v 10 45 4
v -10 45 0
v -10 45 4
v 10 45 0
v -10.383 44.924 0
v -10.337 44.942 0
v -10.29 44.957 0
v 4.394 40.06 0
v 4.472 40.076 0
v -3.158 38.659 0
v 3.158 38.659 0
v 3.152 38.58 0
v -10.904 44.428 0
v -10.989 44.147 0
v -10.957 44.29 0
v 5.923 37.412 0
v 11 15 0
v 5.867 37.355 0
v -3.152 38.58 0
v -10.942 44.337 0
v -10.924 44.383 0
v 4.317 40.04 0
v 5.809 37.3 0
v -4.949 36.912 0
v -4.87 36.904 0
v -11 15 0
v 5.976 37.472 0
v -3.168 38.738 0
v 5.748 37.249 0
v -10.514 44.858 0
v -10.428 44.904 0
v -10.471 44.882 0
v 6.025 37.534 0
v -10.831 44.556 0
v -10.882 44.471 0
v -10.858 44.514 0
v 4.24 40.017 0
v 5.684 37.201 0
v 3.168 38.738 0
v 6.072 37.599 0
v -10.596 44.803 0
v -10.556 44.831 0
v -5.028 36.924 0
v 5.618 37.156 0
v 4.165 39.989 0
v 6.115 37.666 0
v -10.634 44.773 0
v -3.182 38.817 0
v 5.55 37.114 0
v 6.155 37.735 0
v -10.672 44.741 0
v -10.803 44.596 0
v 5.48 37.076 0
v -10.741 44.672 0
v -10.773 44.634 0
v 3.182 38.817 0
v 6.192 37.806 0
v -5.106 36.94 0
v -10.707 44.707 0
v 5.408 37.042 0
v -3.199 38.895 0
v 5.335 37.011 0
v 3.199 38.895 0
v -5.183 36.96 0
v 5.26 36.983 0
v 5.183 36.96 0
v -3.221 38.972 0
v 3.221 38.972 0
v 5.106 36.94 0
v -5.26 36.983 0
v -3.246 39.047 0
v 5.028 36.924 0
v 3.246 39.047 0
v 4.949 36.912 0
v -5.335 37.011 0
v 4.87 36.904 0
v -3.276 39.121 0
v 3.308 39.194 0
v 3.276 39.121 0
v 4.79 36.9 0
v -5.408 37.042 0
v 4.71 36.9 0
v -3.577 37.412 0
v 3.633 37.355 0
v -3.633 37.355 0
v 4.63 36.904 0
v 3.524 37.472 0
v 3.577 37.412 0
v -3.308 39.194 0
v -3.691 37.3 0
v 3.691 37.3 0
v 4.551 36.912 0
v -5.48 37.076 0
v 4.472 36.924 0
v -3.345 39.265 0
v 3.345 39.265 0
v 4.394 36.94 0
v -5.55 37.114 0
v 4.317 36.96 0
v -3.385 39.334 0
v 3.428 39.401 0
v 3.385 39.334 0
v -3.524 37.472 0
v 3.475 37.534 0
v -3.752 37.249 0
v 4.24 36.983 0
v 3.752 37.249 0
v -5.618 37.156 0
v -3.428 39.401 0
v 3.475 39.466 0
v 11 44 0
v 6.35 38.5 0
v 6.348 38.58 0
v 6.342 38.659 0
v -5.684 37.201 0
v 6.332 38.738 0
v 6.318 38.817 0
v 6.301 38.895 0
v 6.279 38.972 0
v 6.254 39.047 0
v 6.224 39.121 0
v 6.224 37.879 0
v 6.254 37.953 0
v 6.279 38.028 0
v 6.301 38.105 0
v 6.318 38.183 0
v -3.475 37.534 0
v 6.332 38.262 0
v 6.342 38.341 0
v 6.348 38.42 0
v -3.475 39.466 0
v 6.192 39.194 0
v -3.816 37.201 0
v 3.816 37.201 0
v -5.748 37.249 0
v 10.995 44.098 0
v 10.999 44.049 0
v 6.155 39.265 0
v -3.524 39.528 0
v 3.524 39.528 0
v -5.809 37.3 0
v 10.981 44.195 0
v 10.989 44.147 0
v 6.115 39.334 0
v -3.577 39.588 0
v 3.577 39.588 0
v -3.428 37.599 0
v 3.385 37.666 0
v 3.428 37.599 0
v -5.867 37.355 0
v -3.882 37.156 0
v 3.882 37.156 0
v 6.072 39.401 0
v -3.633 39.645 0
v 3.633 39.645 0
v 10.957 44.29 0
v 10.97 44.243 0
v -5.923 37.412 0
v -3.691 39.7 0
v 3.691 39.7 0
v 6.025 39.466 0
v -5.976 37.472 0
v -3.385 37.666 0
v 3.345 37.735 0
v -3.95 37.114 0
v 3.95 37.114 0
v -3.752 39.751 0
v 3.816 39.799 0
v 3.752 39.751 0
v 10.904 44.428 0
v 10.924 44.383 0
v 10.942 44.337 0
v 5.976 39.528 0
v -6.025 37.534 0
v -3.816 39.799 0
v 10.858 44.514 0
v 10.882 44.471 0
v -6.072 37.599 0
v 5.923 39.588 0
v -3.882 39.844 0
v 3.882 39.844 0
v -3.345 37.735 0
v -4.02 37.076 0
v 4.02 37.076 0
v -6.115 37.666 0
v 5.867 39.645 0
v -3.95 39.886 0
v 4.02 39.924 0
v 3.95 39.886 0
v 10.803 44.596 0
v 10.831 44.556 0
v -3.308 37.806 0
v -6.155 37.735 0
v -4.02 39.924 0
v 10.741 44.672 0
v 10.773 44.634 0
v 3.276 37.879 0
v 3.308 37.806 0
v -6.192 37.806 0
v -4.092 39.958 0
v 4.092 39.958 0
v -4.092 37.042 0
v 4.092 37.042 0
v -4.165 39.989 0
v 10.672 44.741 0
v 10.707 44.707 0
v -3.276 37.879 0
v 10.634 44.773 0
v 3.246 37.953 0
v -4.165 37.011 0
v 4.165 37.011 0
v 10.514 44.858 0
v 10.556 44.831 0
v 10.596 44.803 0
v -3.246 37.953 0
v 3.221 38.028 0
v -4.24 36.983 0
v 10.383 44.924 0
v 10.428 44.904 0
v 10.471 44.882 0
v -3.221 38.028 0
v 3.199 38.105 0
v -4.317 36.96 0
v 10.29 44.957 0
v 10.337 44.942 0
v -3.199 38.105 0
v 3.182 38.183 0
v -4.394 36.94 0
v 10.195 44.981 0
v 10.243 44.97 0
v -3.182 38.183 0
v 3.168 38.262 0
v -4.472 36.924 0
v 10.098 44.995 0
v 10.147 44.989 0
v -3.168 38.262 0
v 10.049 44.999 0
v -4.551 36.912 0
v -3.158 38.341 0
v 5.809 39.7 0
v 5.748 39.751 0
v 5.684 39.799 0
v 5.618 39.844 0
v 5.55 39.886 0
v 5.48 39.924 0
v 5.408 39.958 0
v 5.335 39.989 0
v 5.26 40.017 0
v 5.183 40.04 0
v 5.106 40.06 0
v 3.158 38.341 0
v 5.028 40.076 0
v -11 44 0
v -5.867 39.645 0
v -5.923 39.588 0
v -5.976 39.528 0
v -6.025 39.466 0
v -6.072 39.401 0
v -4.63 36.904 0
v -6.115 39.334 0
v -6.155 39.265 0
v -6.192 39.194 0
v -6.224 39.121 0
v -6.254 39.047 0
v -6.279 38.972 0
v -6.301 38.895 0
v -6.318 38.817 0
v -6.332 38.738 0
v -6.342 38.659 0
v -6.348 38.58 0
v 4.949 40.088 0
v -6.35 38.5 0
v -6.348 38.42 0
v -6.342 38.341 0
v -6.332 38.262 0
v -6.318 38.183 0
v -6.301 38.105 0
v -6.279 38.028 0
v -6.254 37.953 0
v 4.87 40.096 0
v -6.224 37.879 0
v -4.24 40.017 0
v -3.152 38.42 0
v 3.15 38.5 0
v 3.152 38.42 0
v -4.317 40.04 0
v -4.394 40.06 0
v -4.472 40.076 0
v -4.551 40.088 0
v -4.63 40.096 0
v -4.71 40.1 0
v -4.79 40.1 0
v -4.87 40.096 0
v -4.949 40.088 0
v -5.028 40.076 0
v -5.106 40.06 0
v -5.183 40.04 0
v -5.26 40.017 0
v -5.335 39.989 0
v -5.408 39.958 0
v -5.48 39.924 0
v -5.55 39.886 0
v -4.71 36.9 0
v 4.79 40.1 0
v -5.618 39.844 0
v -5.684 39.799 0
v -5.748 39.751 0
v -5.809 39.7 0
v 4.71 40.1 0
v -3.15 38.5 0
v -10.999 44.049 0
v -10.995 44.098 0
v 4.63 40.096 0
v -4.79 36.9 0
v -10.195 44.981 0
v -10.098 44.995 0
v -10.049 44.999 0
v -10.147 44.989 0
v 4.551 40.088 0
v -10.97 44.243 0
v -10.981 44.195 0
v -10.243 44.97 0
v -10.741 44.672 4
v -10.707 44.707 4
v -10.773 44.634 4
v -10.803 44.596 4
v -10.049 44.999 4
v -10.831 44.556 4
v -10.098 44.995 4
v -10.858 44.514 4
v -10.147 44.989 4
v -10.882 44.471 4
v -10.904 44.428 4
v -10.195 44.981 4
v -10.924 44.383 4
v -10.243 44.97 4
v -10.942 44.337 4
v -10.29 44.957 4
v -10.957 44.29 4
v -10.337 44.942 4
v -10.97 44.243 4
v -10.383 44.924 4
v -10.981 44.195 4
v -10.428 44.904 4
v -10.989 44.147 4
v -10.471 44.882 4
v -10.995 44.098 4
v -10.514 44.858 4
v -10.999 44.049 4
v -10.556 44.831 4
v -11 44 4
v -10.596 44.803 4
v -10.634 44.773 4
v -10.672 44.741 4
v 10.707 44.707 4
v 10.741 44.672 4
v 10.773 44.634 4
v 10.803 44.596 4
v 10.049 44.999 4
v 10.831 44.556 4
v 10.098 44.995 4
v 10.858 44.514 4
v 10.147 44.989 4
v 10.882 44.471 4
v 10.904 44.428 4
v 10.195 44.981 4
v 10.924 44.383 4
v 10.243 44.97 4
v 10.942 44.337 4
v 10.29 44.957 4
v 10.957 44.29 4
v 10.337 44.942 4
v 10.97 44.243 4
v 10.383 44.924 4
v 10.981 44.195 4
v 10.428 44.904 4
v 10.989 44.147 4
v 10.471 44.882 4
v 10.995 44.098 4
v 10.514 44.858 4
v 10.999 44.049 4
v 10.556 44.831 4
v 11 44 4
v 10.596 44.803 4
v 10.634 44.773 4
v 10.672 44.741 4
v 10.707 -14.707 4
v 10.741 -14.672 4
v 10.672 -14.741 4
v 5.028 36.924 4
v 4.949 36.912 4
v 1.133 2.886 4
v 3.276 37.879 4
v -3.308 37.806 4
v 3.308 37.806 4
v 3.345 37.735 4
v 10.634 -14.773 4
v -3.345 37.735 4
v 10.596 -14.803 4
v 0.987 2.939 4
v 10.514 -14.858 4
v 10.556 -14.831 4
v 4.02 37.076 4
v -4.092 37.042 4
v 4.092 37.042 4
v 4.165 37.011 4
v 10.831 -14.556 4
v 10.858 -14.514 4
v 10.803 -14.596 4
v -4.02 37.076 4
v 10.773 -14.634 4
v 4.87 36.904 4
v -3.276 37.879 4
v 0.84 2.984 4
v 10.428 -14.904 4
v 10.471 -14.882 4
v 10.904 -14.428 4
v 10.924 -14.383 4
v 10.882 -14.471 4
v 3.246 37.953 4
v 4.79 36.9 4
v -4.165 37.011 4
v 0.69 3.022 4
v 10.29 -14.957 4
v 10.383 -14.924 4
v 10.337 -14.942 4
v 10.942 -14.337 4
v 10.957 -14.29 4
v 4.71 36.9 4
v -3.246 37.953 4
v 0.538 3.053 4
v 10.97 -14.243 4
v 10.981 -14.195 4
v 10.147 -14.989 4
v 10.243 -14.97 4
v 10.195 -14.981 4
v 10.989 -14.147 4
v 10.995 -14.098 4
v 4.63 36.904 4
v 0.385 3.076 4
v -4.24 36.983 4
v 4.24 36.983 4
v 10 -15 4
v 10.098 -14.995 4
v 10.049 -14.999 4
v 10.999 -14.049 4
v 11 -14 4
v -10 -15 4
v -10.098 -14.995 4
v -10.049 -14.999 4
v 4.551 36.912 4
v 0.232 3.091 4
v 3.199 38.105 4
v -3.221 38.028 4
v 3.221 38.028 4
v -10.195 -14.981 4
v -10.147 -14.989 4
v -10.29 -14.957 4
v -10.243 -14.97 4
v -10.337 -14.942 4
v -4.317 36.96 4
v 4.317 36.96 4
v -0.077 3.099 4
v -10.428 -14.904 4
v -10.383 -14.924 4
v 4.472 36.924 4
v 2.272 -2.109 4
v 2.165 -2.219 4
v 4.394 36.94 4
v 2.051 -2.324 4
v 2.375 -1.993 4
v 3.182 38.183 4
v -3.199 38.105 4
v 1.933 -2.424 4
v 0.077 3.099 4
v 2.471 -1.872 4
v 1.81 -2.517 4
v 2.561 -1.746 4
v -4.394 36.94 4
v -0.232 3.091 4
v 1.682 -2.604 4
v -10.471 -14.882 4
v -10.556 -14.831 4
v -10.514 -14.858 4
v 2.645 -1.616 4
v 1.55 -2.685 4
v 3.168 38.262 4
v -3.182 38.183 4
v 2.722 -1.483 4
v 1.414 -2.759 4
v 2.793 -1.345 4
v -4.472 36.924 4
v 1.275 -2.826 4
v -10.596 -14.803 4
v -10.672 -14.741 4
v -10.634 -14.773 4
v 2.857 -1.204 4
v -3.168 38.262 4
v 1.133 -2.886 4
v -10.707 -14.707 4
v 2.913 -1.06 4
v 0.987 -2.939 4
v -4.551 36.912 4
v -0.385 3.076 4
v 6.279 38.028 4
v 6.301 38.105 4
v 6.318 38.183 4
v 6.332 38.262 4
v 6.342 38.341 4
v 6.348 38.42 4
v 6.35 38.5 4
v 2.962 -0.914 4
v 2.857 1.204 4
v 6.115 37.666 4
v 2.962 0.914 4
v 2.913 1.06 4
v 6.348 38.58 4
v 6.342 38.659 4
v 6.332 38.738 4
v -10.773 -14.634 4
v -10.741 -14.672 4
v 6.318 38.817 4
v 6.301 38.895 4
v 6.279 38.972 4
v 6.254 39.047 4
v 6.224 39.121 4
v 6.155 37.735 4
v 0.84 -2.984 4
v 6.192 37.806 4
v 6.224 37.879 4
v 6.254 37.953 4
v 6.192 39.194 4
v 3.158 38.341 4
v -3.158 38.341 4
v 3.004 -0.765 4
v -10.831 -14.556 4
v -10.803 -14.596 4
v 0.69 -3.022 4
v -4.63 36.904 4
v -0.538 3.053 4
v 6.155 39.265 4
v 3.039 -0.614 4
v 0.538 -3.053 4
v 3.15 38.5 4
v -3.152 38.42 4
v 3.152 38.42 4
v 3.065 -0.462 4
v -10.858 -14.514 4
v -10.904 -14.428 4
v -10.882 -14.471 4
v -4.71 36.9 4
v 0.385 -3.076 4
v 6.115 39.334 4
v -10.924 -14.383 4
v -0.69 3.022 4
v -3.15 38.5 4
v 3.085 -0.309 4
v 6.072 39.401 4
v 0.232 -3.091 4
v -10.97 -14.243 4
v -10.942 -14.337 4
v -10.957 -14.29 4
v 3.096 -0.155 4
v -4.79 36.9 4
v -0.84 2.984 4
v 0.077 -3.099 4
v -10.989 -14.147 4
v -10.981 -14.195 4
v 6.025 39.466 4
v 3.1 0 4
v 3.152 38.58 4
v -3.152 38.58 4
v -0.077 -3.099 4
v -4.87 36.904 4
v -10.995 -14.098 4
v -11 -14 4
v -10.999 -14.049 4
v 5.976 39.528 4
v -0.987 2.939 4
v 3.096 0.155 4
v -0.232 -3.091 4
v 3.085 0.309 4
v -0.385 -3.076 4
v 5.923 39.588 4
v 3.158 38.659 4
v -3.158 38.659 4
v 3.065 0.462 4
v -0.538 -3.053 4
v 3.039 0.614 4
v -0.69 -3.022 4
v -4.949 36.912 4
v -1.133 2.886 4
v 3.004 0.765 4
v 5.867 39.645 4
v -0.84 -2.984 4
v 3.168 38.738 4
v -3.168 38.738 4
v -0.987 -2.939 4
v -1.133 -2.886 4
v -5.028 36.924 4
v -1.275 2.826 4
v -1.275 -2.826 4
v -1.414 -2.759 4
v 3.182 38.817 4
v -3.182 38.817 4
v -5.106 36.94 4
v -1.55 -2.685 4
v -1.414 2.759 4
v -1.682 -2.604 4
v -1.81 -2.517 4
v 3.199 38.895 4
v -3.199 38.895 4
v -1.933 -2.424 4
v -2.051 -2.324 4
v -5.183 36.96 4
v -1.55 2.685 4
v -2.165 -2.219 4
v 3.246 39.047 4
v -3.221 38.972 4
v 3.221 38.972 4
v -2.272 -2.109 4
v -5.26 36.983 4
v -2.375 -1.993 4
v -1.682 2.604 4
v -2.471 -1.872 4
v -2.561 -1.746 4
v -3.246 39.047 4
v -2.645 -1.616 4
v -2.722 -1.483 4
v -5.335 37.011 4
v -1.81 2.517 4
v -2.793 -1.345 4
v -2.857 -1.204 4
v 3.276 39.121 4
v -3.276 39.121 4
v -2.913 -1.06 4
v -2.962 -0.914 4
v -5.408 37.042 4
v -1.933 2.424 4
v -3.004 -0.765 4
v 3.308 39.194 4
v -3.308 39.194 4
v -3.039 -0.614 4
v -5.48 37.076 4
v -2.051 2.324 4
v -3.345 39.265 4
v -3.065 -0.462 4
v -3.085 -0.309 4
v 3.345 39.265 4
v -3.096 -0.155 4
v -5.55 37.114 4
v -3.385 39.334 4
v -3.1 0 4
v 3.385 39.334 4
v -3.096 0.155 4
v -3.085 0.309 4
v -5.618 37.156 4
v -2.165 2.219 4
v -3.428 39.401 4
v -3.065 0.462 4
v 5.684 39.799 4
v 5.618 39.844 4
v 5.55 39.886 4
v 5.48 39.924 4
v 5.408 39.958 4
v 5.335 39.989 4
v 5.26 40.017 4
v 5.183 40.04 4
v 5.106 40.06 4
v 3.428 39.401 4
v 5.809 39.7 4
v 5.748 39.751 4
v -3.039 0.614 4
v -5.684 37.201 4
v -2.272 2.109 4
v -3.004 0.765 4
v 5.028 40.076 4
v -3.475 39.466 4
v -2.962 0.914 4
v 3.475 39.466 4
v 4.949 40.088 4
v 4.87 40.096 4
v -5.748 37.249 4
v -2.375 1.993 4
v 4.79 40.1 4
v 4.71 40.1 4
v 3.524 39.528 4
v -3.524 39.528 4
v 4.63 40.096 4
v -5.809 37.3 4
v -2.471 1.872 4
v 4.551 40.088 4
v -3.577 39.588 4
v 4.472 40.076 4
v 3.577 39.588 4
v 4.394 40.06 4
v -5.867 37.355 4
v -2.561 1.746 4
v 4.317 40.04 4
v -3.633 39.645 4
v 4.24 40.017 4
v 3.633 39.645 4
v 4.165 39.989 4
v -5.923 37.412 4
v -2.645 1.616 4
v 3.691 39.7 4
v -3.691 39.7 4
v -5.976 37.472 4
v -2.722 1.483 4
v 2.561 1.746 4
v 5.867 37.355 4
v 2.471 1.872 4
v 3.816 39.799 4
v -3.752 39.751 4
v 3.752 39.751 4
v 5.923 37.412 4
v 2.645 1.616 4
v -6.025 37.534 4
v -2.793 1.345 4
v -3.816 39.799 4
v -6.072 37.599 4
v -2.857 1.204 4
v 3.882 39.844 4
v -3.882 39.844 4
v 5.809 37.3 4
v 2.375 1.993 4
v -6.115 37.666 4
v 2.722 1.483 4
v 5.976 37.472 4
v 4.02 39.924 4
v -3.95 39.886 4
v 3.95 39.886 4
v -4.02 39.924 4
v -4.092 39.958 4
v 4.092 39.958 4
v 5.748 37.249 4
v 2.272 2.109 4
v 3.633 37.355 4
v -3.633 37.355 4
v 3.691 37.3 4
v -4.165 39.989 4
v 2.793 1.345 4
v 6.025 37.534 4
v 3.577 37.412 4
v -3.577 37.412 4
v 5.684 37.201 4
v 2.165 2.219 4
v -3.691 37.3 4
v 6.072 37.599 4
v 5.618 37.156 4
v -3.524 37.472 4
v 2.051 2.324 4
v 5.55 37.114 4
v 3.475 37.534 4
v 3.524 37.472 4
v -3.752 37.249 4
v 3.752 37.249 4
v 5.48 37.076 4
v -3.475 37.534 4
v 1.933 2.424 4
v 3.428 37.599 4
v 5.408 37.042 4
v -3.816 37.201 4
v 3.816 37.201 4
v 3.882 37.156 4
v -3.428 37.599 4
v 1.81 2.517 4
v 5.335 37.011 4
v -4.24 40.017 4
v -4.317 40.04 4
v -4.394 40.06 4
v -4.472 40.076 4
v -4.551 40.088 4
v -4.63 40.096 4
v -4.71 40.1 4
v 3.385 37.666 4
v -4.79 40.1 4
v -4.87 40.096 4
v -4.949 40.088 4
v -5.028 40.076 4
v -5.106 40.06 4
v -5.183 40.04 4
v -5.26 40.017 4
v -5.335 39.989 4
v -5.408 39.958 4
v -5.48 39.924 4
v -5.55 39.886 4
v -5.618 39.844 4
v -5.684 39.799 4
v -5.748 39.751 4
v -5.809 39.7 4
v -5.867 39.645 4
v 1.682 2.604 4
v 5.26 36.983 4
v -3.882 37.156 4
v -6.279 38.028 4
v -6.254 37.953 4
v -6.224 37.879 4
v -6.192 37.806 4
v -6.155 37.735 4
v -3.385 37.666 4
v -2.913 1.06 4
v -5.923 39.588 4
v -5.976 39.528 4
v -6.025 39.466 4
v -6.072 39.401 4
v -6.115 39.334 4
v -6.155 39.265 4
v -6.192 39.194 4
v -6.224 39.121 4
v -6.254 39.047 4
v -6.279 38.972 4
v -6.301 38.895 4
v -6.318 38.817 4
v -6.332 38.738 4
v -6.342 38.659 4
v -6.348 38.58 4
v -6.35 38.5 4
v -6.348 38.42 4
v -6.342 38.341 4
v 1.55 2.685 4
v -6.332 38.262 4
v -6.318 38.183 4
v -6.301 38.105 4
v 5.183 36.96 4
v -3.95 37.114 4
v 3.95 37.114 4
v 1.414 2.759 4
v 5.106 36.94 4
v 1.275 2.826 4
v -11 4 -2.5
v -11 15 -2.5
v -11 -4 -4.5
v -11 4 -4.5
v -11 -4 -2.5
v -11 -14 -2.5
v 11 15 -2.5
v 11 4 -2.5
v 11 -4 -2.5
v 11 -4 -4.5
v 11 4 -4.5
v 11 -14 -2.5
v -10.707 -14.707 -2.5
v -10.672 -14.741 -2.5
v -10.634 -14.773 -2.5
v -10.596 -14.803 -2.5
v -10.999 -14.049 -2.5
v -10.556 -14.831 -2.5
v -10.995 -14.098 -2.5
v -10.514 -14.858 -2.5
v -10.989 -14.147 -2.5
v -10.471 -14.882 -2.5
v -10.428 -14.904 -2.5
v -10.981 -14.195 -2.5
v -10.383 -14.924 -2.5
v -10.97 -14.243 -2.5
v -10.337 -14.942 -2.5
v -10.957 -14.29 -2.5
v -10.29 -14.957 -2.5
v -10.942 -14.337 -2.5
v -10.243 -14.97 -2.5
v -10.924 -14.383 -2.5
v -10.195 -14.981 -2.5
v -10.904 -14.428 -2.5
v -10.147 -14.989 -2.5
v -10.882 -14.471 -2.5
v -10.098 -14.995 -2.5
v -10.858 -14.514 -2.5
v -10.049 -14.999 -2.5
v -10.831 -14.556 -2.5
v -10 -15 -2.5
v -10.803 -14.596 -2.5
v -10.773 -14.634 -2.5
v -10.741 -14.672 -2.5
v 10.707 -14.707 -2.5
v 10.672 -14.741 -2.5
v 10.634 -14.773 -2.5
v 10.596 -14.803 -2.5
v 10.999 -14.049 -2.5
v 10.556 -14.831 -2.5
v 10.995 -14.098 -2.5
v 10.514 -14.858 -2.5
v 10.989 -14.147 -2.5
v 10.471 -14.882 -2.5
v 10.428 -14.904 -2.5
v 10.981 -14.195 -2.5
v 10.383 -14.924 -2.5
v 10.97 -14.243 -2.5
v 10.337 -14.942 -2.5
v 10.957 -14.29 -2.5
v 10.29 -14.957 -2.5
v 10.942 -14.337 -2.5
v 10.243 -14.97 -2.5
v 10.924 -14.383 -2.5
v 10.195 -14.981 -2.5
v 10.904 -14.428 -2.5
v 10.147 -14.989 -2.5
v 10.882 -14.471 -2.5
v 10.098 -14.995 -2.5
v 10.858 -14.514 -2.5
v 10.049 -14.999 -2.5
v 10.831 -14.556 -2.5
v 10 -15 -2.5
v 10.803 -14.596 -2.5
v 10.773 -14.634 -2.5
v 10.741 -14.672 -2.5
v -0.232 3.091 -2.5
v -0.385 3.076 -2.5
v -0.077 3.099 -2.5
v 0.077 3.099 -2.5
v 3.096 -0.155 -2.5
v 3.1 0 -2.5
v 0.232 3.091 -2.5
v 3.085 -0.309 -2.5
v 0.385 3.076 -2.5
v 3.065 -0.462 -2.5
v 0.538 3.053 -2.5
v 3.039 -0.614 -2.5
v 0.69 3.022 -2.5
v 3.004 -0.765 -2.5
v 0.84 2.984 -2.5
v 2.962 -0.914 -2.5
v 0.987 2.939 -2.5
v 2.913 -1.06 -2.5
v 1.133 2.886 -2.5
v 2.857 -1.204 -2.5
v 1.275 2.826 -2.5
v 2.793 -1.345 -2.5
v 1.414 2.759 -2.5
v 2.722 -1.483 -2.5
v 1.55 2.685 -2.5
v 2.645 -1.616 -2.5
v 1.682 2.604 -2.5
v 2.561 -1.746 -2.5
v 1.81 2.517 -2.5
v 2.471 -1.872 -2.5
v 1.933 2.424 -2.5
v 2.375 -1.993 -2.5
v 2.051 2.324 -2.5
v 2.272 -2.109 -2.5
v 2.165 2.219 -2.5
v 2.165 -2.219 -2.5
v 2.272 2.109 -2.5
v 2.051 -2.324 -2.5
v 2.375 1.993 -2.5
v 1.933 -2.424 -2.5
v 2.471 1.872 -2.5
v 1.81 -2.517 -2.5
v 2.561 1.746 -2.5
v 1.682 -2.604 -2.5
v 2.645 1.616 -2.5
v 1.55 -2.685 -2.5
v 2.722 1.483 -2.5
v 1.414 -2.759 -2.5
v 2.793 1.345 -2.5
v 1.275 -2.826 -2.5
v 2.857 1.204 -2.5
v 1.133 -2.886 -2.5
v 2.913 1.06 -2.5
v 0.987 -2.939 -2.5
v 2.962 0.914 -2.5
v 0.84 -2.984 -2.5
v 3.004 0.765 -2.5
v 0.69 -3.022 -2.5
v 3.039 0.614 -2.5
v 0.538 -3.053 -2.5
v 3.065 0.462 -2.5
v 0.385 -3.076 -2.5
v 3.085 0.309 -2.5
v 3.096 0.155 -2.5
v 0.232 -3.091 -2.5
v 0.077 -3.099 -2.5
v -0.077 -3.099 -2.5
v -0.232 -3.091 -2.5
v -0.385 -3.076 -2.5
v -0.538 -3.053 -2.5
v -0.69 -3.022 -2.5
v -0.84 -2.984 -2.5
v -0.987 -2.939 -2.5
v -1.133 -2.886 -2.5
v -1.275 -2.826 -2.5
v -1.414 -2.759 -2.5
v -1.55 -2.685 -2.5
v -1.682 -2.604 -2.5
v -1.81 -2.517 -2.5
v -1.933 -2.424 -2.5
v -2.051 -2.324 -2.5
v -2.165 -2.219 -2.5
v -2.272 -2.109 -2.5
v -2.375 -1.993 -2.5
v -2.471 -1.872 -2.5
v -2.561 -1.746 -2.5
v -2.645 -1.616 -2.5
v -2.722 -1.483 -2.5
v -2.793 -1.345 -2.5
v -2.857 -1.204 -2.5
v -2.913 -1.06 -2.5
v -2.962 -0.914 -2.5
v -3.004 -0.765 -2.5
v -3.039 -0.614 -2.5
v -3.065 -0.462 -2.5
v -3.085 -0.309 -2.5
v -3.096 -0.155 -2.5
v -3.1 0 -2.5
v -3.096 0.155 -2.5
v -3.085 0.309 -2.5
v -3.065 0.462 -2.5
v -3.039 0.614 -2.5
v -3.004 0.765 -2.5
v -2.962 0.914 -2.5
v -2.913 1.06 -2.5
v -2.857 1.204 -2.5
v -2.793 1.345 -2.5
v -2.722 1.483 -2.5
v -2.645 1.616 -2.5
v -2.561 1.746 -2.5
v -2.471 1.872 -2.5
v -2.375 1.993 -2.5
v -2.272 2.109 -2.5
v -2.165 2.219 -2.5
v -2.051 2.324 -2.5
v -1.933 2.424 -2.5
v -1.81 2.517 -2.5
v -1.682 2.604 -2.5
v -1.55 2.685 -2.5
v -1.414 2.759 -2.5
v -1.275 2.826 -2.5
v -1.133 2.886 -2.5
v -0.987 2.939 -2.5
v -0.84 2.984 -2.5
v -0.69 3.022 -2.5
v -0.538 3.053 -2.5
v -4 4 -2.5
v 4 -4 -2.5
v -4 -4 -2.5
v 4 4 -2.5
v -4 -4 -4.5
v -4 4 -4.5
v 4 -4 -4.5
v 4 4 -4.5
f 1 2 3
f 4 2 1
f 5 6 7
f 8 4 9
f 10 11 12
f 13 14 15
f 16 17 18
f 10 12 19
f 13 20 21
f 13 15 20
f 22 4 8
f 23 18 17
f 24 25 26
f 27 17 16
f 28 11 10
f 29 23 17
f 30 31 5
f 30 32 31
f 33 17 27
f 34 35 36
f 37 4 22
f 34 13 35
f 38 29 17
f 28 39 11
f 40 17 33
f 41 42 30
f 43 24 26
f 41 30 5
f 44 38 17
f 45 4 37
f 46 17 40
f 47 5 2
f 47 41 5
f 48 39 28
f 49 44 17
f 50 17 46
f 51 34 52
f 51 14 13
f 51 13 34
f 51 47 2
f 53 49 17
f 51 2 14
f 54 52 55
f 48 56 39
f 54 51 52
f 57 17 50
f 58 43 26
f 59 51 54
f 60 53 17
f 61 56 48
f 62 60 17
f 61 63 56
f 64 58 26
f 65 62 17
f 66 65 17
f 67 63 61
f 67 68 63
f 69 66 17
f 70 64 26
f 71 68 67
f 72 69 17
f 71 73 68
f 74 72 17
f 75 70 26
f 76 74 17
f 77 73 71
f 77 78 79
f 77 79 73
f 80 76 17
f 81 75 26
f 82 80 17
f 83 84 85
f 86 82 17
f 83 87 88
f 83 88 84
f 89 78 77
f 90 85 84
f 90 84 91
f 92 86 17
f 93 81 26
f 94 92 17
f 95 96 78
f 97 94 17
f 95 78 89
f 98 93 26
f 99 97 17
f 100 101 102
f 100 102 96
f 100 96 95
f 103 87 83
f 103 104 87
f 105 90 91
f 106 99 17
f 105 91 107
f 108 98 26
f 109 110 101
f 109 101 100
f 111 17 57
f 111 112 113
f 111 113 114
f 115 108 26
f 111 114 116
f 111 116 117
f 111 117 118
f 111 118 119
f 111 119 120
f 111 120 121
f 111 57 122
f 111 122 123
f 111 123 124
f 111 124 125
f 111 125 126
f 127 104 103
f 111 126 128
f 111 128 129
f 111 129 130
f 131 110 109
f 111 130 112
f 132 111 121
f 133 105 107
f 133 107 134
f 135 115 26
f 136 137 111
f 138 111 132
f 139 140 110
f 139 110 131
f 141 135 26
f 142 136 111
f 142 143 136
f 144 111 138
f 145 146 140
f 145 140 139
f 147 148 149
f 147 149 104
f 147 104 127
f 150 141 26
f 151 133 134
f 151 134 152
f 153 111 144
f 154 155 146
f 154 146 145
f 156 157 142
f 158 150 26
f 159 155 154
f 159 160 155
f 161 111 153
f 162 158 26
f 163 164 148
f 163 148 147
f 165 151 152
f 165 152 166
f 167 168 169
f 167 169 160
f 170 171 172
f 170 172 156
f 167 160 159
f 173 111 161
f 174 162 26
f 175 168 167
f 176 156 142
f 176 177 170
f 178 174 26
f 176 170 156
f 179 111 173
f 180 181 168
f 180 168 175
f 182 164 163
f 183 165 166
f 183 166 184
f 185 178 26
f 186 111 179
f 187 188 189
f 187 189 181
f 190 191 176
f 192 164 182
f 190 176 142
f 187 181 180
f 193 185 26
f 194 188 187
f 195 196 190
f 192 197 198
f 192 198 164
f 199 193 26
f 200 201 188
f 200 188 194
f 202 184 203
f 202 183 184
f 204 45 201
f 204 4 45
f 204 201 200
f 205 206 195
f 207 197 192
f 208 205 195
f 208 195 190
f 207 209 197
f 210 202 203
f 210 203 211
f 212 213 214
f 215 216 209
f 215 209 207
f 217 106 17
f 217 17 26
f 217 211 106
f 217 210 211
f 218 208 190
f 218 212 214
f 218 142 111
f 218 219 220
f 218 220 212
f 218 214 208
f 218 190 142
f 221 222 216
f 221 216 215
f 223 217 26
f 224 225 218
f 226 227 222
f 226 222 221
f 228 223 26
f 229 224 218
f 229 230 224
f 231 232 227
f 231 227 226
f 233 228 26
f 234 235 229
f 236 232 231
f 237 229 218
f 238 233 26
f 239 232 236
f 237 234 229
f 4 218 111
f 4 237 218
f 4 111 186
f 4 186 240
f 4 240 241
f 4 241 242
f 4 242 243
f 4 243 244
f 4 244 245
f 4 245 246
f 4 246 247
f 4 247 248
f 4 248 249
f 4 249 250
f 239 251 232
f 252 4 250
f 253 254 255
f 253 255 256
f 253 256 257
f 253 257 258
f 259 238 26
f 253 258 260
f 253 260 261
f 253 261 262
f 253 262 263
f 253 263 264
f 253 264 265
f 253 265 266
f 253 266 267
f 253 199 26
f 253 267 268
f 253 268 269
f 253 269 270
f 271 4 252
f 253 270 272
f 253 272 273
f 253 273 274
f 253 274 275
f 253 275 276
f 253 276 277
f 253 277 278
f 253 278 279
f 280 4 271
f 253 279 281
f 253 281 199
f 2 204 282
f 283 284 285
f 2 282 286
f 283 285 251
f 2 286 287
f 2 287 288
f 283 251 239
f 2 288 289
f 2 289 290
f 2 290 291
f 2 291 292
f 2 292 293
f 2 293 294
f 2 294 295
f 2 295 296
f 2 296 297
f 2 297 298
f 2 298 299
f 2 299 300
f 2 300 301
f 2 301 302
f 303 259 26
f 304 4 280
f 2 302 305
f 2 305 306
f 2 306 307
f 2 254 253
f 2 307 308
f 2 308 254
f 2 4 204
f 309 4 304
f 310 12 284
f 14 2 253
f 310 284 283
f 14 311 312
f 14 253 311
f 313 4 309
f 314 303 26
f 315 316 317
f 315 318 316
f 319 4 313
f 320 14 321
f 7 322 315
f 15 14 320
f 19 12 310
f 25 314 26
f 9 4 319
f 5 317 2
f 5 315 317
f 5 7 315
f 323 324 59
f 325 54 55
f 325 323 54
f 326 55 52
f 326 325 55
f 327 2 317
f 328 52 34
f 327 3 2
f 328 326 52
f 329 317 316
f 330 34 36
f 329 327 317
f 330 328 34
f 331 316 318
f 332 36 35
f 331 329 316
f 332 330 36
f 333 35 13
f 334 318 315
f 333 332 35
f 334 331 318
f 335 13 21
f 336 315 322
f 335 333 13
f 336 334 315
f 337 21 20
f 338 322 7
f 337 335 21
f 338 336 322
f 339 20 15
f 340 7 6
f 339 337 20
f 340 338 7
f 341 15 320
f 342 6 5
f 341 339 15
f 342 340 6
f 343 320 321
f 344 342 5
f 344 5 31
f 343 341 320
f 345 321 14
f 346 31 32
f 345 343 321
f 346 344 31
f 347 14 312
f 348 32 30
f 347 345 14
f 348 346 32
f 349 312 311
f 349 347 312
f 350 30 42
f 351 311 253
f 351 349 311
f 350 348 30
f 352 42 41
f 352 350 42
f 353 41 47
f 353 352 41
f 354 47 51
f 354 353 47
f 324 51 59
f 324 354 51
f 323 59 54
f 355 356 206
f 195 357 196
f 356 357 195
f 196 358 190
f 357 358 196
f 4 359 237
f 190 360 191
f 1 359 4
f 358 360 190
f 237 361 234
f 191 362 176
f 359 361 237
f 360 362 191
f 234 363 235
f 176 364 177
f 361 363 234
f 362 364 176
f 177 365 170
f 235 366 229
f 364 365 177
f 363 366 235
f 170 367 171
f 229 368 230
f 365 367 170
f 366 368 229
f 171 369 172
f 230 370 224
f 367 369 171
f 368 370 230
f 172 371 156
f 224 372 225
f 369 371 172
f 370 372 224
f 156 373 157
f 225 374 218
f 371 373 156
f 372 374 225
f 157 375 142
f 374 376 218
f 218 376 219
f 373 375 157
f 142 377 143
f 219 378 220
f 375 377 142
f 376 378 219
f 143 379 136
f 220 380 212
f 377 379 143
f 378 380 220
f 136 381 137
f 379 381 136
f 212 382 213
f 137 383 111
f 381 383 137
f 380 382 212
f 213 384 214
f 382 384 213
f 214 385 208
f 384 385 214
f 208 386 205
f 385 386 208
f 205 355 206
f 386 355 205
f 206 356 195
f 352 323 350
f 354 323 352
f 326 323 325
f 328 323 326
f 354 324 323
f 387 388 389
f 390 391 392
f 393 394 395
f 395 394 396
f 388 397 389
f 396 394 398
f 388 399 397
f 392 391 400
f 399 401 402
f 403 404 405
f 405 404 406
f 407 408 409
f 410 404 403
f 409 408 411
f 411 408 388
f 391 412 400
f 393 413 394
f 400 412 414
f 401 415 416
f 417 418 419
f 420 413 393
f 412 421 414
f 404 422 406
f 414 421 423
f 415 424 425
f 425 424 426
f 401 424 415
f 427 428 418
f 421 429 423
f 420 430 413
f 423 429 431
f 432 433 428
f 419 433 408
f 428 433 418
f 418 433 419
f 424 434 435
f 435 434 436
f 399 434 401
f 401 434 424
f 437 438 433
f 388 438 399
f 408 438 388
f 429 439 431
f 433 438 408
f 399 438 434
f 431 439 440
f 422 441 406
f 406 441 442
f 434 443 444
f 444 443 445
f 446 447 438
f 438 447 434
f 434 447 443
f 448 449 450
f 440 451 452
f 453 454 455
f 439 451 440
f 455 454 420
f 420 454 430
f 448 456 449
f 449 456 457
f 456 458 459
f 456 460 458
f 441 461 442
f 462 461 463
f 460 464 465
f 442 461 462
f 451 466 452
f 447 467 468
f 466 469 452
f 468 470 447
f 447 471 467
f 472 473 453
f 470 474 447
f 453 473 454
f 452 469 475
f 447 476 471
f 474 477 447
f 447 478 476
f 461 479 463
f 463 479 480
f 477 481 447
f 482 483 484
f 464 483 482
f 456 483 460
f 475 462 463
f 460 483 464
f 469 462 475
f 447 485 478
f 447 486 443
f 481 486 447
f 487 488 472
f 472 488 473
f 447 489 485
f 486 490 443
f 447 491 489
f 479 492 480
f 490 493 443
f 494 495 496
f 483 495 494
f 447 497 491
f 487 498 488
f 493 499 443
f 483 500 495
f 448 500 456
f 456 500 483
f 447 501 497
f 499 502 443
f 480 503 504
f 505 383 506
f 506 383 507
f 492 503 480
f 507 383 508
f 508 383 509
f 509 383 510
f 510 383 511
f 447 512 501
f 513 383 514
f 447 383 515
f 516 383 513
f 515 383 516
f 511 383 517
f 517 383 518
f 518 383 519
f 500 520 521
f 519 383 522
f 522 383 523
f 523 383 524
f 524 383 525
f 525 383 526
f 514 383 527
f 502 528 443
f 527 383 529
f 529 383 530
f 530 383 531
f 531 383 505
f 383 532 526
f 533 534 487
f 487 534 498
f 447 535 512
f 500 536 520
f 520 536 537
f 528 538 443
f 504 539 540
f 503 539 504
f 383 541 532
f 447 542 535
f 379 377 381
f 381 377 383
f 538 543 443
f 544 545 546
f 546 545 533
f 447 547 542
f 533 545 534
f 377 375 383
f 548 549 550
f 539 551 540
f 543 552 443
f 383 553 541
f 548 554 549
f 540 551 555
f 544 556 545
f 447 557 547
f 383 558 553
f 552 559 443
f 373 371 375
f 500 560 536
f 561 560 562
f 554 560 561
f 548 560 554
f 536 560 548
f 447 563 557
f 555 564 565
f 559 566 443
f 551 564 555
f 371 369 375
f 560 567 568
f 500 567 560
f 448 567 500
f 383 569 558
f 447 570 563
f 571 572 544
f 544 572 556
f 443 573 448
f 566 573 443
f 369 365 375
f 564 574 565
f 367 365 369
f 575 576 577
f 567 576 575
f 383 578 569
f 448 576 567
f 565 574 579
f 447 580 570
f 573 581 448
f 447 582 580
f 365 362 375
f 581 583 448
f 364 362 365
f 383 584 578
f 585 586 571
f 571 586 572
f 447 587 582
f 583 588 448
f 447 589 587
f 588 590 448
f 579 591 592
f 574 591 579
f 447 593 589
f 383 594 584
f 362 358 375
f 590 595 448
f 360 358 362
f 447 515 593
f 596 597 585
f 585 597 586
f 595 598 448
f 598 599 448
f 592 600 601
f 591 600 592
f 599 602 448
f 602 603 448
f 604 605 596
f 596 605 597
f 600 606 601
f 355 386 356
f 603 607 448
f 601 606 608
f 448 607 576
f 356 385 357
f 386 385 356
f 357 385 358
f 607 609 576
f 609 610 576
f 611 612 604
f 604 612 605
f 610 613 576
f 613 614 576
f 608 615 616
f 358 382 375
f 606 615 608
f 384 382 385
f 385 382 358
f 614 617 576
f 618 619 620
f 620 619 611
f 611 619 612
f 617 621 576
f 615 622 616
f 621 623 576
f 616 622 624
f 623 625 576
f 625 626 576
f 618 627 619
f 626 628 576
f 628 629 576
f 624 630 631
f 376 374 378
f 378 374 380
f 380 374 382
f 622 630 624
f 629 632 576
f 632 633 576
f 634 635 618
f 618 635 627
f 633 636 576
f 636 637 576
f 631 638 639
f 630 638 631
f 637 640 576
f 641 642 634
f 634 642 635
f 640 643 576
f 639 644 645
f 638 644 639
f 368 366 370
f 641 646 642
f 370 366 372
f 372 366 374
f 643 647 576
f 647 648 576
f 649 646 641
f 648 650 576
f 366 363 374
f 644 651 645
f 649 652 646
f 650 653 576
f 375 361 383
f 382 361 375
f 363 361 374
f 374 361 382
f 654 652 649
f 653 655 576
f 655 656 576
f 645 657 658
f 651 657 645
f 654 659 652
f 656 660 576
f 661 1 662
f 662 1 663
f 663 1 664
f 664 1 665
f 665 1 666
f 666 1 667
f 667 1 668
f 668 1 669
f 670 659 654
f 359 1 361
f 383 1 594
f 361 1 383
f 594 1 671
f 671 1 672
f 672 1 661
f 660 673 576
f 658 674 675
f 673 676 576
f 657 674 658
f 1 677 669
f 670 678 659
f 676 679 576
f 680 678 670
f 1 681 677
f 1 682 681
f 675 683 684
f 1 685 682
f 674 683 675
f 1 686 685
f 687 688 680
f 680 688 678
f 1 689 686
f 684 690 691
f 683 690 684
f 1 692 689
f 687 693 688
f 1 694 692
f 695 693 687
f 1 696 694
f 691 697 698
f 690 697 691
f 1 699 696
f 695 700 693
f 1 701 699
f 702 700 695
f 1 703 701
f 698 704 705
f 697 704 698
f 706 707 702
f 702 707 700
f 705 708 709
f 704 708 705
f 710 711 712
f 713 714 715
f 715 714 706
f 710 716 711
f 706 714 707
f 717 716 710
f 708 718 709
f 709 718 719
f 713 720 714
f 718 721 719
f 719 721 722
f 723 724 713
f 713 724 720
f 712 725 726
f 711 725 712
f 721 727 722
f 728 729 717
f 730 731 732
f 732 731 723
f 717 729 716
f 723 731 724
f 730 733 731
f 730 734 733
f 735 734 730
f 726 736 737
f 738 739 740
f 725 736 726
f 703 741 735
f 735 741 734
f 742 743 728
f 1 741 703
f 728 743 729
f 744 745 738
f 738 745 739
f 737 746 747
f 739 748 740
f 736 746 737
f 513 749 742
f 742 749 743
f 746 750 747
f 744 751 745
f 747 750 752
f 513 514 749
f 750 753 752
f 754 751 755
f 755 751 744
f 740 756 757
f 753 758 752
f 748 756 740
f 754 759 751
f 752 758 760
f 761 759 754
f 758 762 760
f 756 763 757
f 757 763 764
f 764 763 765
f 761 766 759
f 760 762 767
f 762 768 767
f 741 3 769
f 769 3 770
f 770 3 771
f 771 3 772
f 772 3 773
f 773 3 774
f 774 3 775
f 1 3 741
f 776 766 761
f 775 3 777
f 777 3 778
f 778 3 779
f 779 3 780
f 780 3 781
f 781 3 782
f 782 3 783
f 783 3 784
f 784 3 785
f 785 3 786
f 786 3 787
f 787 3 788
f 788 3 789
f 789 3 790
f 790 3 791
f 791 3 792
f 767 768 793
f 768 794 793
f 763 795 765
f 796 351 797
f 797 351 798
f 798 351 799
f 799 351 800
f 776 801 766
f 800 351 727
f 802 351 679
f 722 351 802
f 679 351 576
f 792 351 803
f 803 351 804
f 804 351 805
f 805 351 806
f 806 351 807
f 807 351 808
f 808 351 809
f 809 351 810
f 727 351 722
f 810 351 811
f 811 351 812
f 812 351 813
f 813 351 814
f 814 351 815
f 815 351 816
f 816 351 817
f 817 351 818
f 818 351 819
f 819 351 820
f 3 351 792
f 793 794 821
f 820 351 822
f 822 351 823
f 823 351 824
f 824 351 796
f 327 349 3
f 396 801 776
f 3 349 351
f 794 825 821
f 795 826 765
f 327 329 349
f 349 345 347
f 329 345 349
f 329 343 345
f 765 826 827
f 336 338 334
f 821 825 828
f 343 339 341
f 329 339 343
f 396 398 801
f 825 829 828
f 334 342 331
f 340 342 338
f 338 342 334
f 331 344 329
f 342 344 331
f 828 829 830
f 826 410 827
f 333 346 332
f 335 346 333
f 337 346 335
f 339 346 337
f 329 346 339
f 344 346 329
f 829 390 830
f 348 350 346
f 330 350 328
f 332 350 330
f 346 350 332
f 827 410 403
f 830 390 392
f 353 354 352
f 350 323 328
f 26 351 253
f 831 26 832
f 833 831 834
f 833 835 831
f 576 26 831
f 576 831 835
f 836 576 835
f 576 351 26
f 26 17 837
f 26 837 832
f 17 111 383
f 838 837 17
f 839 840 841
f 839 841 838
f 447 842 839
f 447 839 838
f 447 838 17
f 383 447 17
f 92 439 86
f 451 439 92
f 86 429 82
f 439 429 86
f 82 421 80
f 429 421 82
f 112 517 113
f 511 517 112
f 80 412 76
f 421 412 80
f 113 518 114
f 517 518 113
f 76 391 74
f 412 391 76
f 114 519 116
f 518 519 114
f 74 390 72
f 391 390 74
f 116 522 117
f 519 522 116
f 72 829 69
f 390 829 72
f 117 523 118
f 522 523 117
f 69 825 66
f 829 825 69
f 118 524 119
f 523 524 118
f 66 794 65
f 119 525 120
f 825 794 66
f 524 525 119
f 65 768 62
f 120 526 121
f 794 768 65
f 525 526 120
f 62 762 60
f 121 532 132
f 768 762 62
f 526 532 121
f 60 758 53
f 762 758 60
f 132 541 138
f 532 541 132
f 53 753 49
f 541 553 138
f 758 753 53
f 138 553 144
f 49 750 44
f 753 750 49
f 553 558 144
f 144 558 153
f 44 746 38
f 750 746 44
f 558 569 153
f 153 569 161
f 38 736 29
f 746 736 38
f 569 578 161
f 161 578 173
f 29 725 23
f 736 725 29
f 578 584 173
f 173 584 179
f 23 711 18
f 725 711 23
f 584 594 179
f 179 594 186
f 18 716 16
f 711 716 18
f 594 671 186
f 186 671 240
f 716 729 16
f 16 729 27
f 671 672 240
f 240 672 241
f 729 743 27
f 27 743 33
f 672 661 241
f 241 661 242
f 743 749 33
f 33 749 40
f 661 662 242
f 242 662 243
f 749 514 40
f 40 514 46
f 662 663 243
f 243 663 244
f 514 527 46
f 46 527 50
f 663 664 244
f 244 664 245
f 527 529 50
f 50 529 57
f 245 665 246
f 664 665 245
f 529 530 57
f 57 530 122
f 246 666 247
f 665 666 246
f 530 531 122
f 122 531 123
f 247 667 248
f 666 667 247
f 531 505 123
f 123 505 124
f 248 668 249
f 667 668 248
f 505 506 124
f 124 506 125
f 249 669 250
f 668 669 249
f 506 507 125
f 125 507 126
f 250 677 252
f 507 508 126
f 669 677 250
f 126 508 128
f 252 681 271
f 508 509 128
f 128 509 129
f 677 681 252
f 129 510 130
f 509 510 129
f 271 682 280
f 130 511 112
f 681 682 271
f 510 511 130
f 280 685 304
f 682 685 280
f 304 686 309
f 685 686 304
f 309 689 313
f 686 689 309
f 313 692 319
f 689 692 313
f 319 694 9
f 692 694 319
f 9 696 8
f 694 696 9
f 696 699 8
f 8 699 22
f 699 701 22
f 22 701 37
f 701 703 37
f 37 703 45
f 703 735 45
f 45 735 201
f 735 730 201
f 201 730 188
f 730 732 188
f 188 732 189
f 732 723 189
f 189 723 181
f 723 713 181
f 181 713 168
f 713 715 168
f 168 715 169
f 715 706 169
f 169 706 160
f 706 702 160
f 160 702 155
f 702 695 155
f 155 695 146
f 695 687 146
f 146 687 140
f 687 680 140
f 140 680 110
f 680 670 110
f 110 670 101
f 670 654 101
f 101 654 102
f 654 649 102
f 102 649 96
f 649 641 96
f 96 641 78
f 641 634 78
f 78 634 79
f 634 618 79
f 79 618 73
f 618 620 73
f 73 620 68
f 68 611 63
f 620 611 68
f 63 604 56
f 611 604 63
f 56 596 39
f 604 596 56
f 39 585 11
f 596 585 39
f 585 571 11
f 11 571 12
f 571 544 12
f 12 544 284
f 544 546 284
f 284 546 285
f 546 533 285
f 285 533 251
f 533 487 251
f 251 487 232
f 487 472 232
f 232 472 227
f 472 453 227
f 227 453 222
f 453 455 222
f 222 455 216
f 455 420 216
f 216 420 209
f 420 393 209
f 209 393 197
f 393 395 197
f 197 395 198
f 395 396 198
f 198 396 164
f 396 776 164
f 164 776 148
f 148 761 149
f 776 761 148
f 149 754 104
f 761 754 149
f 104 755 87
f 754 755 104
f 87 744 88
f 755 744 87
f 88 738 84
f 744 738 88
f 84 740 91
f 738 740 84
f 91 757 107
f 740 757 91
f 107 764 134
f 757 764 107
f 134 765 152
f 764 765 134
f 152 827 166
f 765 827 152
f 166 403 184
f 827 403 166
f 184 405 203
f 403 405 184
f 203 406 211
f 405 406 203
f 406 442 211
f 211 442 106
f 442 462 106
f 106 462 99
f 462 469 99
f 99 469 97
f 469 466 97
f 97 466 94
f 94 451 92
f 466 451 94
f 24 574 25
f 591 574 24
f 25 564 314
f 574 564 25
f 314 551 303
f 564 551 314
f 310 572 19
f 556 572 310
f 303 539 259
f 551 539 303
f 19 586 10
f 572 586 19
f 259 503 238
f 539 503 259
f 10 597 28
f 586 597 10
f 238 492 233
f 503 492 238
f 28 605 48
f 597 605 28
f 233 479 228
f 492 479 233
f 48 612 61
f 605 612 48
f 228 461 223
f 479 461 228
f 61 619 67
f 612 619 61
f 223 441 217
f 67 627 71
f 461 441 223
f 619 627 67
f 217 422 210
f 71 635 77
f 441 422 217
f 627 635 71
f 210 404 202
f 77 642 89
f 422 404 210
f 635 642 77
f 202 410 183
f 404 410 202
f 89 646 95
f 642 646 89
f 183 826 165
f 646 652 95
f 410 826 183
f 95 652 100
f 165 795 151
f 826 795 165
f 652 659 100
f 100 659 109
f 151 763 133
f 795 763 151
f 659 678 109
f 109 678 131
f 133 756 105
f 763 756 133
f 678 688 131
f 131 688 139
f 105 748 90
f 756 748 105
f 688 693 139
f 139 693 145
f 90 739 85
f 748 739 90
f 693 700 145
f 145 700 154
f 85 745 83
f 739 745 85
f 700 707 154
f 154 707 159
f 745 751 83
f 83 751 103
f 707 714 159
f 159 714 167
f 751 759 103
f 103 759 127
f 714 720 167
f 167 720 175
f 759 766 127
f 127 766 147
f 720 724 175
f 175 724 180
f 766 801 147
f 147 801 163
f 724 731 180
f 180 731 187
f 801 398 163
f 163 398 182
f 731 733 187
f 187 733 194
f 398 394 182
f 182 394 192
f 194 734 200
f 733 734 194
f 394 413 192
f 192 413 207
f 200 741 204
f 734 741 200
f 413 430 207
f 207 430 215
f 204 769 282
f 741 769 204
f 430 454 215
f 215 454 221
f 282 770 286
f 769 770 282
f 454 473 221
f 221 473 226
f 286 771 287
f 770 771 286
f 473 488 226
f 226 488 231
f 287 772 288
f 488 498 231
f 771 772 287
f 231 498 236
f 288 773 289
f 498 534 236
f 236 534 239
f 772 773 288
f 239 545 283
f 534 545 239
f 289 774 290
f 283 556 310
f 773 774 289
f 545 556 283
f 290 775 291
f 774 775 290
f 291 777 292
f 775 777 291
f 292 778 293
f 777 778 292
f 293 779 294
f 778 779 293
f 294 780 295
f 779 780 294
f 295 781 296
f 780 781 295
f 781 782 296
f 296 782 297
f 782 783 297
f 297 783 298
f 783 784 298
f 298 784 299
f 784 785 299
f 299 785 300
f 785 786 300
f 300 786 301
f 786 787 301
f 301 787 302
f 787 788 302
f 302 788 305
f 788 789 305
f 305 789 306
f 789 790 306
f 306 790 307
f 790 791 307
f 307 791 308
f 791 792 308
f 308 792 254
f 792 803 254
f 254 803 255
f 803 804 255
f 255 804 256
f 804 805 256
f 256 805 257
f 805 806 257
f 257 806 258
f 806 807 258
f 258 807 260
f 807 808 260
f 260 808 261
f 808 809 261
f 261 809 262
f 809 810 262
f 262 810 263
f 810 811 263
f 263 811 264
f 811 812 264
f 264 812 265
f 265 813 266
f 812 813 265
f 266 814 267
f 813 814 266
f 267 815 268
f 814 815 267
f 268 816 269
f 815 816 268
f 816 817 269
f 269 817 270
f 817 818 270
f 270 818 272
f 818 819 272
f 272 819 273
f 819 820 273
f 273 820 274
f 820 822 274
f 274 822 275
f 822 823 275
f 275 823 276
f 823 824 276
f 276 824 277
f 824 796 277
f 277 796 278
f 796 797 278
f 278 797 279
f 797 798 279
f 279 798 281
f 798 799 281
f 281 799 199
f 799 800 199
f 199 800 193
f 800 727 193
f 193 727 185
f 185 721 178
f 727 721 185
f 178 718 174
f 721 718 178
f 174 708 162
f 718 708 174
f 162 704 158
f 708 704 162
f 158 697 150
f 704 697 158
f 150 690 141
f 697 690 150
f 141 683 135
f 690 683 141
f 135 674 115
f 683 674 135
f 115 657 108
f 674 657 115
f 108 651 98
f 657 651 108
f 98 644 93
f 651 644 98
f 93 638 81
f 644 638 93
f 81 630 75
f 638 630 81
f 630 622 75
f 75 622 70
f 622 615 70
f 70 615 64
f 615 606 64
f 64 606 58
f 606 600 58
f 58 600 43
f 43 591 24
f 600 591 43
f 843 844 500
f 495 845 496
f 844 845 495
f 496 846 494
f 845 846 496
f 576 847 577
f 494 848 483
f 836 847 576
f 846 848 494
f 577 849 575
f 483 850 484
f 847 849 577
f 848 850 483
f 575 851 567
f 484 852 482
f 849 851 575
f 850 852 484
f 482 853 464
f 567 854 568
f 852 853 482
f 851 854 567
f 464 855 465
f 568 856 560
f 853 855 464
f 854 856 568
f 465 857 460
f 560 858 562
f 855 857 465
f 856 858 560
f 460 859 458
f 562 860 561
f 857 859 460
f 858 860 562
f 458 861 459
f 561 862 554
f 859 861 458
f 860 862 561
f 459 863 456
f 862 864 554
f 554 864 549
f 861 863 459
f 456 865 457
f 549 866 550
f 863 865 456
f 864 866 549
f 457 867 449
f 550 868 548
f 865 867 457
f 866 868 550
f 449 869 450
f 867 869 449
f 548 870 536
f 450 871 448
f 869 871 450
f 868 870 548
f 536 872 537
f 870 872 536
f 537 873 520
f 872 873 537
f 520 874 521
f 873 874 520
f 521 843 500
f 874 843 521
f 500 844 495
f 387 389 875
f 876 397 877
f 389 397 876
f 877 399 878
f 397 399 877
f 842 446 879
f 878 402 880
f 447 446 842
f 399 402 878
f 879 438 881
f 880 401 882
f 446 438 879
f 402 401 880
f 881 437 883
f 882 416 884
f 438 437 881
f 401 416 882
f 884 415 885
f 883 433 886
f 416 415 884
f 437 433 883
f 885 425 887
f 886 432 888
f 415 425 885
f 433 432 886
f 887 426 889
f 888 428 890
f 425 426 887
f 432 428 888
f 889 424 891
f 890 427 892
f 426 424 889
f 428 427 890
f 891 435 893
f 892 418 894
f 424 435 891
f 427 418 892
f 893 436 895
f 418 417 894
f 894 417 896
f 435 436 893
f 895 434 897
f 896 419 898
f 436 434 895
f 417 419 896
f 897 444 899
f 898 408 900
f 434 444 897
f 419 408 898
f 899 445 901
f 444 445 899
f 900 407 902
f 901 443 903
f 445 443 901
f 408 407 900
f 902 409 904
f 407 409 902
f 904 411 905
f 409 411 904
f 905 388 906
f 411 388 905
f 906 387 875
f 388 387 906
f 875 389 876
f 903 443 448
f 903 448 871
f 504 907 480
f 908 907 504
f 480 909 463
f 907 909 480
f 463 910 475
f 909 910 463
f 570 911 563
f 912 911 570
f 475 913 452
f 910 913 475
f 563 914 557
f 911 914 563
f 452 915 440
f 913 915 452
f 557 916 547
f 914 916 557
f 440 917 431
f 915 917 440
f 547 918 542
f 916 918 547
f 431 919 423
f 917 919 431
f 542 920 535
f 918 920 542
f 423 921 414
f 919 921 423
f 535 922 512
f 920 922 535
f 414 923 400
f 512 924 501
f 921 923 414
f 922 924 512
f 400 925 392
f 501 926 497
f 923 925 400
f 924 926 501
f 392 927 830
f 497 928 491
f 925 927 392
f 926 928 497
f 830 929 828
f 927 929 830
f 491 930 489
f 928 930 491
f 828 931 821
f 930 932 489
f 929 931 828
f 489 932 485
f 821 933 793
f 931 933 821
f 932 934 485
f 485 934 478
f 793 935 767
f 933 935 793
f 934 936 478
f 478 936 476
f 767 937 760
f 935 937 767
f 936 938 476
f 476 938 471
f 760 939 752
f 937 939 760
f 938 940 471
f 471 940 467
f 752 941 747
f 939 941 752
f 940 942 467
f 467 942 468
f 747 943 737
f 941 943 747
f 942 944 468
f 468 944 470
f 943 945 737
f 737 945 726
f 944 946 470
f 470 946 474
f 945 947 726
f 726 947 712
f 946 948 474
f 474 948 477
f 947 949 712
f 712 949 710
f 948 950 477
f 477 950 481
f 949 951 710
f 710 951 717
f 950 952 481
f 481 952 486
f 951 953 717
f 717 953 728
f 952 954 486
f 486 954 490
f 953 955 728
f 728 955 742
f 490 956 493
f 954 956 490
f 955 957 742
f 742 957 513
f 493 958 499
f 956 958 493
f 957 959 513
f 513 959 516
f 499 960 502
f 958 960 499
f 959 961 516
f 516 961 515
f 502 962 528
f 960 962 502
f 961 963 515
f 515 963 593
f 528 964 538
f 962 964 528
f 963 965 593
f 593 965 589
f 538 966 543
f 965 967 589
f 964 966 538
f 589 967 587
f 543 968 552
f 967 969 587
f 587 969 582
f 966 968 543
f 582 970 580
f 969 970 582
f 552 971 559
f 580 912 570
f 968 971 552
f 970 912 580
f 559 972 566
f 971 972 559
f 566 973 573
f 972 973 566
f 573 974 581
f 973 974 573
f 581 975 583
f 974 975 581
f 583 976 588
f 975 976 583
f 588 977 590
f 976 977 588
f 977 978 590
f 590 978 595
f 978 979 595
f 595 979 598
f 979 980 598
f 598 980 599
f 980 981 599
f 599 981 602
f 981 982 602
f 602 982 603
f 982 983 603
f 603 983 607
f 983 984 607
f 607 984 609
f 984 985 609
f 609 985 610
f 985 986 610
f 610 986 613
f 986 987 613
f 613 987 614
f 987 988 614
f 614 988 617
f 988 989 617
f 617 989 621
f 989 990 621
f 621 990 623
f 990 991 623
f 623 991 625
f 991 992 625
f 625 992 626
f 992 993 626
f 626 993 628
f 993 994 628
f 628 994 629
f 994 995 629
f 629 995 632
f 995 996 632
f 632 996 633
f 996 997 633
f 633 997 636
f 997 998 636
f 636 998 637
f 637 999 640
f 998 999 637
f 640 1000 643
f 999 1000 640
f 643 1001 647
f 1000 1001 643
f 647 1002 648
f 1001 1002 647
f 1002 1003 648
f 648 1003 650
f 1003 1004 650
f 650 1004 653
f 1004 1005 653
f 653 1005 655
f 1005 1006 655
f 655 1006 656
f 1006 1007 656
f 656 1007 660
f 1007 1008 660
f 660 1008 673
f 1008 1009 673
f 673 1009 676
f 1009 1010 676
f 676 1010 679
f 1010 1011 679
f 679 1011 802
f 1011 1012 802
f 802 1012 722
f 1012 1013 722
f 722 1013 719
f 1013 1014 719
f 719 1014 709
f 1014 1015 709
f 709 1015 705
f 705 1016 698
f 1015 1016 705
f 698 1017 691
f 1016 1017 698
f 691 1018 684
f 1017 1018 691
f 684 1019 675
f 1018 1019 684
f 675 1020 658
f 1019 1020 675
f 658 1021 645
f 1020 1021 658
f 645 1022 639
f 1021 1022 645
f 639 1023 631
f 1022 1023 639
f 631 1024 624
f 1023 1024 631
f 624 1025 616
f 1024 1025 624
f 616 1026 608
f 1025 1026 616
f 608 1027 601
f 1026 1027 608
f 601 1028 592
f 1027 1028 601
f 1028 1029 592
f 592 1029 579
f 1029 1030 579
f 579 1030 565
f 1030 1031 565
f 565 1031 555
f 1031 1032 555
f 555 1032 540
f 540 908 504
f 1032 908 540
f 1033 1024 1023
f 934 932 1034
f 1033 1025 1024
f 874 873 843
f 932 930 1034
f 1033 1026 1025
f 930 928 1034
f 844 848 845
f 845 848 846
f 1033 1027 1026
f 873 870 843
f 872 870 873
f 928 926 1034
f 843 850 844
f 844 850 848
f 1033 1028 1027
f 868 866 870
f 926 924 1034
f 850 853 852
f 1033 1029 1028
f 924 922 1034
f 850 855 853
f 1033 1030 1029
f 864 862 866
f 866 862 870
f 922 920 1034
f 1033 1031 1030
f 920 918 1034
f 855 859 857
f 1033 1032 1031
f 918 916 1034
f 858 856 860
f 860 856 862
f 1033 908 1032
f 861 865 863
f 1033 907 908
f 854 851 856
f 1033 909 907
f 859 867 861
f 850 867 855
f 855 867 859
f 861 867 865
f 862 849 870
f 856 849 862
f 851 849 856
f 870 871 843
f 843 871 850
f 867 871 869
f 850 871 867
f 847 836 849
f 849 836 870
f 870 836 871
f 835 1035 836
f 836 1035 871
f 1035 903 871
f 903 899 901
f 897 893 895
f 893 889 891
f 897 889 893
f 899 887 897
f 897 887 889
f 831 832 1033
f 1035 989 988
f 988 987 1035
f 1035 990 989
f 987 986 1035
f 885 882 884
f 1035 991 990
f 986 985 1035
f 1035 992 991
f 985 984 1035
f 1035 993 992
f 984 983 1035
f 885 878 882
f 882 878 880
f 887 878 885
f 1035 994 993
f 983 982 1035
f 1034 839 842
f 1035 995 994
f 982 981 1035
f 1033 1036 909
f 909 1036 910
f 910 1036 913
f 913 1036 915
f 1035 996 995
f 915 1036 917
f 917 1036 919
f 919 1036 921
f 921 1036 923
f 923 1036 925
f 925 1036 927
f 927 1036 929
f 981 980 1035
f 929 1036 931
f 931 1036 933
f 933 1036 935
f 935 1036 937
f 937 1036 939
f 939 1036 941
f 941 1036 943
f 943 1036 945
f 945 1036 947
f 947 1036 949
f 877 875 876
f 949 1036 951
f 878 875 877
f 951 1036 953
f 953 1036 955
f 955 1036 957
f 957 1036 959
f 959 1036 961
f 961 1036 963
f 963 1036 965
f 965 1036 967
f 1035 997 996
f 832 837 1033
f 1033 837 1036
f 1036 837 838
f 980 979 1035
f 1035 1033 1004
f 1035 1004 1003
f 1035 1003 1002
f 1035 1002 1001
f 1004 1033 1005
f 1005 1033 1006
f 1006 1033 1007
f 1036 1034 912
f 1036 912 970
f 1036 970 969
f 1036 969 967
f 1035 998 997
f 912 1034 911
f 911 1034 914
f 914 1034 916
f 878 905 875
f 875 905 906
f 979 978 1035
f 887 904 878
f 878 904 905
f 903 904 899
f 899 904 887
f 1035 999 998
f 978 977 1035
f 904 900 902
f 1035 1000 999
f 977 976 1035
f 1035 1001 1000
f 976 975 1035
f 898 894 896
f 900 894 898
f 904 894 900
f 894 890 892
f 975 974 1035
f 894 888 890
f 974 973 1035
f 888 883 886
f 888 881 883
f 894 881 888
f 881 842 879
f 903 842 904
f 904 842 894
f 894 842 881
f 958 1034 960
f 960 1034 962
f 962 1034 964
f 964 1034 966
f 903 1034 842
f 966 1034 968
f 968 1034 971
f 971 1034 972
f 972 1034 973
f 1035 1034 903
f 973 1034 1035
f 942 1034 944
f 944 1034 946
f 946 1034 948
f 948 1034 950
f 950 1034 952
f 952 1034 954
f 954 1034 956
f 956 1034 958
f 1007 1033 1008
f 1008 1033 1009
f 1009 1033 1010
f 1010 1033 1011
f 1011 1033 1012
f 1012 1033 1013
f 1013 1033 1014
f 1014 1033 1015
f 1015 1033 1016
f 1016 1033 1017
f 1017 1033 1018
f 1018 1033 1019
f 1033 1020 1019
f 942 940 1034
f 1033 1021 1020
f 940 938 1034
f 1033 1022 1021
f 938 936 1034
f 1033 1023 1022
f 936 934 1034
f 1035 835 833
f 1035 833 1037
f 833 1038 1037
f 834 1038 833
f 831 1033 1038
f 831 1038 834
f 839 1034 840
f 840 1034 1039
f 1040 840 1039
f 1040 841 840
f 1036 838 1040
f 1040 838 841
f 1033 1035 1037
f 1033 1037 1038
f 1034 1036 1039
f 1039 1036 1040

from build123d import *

# Parameters (mm, degrees)
SKETCH_W        = 22
SKETCH_H        = 60
PAD_DEPTH       = 4
SKETCH001_W     = 22
SKETCH001_H     = 30
PAD001_DEPTH    = 2.5
SKETCH002_W     = 7
SKETCH002_H     = 8
PAD002_DEPTH    = 2
SKETCH003_R     = 3.1
POCKET_DEPTH    = 6.501
SKETCH004_R     = 1.6
POCKET001_DEPTH = 8.501
FILLET_R        = 1


with BuildPart() as part:
    # Sketch → Pad (new body)
    with BuildSketch(Plane.XY):
        with Locations((0, 15)):
            Rectangle(SKETCH_W, SKETCH_H)
    extrude(amount=PAD_DEPTH)

    # Sketch001 (on Face5 of Pad) → Pad001 (join)
    with BuildSketch(Plane(origin=(0, 0, 0), x_dir=(1, 0, 0), z_dir=(0, 0, -1))):
        Rectangle(SKETCH001_W, SKETCH001_H)
    extrude(amount=PAD001_DEPTH)

    # Sketch002 (on Face5 of Pad001) → Pad002 (join)
    with BuildSketch(Plane(origin=(0, 0, -2.5), x_dir=(1, 0, 0), z_dir=(0, 0, -1))):
        with Locations((-7.5, 0)):
            Rectangle(SKETCH002_W, SKETCH002_H)
        with Locations((7.5, 0)):
            Rectangle(SKETCH002_W, SKETCH002_H)
    extrude(amount=PAD002_DEPTH)

    # Sketch003 (on Face5 of Pad002) → Pocket (cut, through all)
    with BuildSketch(Plane(origin=(0, 0, -2.5), x_dir=(1, 0, 0), z_dir=(0, 0, -1))):
        Circle(SKETCH003_R)
    extrude(amount=-POCKET_DEPTH, mode=Mode.SUBTRACT)

    # Sketch004 (on Face5 of Pocket) → Pocket001 (cut, through all)
    with BuildSketch(Plane.XY.offset(4)):
        with Locations((-4.75, 38.5)):
            Circle(SKETCH004_R)
        with Locations((4.75, 38.5)):
            Circle(SKETCH004_R)
    extrude(amount=-POCKET001_DEPTH, mode=Mode.SUBTRACT)

    # Fillet
    fillet_edges = [part.edges().sort_by_distance(p)[0] for p in [
        (-11, -15, 0.75),
        (11, -15, 0.75),
        (-11, 45, 2),
        (11, 45, 2),
    ]]
    fillet(fillet_edges, radius=FILLET_R)


solid = part.part
